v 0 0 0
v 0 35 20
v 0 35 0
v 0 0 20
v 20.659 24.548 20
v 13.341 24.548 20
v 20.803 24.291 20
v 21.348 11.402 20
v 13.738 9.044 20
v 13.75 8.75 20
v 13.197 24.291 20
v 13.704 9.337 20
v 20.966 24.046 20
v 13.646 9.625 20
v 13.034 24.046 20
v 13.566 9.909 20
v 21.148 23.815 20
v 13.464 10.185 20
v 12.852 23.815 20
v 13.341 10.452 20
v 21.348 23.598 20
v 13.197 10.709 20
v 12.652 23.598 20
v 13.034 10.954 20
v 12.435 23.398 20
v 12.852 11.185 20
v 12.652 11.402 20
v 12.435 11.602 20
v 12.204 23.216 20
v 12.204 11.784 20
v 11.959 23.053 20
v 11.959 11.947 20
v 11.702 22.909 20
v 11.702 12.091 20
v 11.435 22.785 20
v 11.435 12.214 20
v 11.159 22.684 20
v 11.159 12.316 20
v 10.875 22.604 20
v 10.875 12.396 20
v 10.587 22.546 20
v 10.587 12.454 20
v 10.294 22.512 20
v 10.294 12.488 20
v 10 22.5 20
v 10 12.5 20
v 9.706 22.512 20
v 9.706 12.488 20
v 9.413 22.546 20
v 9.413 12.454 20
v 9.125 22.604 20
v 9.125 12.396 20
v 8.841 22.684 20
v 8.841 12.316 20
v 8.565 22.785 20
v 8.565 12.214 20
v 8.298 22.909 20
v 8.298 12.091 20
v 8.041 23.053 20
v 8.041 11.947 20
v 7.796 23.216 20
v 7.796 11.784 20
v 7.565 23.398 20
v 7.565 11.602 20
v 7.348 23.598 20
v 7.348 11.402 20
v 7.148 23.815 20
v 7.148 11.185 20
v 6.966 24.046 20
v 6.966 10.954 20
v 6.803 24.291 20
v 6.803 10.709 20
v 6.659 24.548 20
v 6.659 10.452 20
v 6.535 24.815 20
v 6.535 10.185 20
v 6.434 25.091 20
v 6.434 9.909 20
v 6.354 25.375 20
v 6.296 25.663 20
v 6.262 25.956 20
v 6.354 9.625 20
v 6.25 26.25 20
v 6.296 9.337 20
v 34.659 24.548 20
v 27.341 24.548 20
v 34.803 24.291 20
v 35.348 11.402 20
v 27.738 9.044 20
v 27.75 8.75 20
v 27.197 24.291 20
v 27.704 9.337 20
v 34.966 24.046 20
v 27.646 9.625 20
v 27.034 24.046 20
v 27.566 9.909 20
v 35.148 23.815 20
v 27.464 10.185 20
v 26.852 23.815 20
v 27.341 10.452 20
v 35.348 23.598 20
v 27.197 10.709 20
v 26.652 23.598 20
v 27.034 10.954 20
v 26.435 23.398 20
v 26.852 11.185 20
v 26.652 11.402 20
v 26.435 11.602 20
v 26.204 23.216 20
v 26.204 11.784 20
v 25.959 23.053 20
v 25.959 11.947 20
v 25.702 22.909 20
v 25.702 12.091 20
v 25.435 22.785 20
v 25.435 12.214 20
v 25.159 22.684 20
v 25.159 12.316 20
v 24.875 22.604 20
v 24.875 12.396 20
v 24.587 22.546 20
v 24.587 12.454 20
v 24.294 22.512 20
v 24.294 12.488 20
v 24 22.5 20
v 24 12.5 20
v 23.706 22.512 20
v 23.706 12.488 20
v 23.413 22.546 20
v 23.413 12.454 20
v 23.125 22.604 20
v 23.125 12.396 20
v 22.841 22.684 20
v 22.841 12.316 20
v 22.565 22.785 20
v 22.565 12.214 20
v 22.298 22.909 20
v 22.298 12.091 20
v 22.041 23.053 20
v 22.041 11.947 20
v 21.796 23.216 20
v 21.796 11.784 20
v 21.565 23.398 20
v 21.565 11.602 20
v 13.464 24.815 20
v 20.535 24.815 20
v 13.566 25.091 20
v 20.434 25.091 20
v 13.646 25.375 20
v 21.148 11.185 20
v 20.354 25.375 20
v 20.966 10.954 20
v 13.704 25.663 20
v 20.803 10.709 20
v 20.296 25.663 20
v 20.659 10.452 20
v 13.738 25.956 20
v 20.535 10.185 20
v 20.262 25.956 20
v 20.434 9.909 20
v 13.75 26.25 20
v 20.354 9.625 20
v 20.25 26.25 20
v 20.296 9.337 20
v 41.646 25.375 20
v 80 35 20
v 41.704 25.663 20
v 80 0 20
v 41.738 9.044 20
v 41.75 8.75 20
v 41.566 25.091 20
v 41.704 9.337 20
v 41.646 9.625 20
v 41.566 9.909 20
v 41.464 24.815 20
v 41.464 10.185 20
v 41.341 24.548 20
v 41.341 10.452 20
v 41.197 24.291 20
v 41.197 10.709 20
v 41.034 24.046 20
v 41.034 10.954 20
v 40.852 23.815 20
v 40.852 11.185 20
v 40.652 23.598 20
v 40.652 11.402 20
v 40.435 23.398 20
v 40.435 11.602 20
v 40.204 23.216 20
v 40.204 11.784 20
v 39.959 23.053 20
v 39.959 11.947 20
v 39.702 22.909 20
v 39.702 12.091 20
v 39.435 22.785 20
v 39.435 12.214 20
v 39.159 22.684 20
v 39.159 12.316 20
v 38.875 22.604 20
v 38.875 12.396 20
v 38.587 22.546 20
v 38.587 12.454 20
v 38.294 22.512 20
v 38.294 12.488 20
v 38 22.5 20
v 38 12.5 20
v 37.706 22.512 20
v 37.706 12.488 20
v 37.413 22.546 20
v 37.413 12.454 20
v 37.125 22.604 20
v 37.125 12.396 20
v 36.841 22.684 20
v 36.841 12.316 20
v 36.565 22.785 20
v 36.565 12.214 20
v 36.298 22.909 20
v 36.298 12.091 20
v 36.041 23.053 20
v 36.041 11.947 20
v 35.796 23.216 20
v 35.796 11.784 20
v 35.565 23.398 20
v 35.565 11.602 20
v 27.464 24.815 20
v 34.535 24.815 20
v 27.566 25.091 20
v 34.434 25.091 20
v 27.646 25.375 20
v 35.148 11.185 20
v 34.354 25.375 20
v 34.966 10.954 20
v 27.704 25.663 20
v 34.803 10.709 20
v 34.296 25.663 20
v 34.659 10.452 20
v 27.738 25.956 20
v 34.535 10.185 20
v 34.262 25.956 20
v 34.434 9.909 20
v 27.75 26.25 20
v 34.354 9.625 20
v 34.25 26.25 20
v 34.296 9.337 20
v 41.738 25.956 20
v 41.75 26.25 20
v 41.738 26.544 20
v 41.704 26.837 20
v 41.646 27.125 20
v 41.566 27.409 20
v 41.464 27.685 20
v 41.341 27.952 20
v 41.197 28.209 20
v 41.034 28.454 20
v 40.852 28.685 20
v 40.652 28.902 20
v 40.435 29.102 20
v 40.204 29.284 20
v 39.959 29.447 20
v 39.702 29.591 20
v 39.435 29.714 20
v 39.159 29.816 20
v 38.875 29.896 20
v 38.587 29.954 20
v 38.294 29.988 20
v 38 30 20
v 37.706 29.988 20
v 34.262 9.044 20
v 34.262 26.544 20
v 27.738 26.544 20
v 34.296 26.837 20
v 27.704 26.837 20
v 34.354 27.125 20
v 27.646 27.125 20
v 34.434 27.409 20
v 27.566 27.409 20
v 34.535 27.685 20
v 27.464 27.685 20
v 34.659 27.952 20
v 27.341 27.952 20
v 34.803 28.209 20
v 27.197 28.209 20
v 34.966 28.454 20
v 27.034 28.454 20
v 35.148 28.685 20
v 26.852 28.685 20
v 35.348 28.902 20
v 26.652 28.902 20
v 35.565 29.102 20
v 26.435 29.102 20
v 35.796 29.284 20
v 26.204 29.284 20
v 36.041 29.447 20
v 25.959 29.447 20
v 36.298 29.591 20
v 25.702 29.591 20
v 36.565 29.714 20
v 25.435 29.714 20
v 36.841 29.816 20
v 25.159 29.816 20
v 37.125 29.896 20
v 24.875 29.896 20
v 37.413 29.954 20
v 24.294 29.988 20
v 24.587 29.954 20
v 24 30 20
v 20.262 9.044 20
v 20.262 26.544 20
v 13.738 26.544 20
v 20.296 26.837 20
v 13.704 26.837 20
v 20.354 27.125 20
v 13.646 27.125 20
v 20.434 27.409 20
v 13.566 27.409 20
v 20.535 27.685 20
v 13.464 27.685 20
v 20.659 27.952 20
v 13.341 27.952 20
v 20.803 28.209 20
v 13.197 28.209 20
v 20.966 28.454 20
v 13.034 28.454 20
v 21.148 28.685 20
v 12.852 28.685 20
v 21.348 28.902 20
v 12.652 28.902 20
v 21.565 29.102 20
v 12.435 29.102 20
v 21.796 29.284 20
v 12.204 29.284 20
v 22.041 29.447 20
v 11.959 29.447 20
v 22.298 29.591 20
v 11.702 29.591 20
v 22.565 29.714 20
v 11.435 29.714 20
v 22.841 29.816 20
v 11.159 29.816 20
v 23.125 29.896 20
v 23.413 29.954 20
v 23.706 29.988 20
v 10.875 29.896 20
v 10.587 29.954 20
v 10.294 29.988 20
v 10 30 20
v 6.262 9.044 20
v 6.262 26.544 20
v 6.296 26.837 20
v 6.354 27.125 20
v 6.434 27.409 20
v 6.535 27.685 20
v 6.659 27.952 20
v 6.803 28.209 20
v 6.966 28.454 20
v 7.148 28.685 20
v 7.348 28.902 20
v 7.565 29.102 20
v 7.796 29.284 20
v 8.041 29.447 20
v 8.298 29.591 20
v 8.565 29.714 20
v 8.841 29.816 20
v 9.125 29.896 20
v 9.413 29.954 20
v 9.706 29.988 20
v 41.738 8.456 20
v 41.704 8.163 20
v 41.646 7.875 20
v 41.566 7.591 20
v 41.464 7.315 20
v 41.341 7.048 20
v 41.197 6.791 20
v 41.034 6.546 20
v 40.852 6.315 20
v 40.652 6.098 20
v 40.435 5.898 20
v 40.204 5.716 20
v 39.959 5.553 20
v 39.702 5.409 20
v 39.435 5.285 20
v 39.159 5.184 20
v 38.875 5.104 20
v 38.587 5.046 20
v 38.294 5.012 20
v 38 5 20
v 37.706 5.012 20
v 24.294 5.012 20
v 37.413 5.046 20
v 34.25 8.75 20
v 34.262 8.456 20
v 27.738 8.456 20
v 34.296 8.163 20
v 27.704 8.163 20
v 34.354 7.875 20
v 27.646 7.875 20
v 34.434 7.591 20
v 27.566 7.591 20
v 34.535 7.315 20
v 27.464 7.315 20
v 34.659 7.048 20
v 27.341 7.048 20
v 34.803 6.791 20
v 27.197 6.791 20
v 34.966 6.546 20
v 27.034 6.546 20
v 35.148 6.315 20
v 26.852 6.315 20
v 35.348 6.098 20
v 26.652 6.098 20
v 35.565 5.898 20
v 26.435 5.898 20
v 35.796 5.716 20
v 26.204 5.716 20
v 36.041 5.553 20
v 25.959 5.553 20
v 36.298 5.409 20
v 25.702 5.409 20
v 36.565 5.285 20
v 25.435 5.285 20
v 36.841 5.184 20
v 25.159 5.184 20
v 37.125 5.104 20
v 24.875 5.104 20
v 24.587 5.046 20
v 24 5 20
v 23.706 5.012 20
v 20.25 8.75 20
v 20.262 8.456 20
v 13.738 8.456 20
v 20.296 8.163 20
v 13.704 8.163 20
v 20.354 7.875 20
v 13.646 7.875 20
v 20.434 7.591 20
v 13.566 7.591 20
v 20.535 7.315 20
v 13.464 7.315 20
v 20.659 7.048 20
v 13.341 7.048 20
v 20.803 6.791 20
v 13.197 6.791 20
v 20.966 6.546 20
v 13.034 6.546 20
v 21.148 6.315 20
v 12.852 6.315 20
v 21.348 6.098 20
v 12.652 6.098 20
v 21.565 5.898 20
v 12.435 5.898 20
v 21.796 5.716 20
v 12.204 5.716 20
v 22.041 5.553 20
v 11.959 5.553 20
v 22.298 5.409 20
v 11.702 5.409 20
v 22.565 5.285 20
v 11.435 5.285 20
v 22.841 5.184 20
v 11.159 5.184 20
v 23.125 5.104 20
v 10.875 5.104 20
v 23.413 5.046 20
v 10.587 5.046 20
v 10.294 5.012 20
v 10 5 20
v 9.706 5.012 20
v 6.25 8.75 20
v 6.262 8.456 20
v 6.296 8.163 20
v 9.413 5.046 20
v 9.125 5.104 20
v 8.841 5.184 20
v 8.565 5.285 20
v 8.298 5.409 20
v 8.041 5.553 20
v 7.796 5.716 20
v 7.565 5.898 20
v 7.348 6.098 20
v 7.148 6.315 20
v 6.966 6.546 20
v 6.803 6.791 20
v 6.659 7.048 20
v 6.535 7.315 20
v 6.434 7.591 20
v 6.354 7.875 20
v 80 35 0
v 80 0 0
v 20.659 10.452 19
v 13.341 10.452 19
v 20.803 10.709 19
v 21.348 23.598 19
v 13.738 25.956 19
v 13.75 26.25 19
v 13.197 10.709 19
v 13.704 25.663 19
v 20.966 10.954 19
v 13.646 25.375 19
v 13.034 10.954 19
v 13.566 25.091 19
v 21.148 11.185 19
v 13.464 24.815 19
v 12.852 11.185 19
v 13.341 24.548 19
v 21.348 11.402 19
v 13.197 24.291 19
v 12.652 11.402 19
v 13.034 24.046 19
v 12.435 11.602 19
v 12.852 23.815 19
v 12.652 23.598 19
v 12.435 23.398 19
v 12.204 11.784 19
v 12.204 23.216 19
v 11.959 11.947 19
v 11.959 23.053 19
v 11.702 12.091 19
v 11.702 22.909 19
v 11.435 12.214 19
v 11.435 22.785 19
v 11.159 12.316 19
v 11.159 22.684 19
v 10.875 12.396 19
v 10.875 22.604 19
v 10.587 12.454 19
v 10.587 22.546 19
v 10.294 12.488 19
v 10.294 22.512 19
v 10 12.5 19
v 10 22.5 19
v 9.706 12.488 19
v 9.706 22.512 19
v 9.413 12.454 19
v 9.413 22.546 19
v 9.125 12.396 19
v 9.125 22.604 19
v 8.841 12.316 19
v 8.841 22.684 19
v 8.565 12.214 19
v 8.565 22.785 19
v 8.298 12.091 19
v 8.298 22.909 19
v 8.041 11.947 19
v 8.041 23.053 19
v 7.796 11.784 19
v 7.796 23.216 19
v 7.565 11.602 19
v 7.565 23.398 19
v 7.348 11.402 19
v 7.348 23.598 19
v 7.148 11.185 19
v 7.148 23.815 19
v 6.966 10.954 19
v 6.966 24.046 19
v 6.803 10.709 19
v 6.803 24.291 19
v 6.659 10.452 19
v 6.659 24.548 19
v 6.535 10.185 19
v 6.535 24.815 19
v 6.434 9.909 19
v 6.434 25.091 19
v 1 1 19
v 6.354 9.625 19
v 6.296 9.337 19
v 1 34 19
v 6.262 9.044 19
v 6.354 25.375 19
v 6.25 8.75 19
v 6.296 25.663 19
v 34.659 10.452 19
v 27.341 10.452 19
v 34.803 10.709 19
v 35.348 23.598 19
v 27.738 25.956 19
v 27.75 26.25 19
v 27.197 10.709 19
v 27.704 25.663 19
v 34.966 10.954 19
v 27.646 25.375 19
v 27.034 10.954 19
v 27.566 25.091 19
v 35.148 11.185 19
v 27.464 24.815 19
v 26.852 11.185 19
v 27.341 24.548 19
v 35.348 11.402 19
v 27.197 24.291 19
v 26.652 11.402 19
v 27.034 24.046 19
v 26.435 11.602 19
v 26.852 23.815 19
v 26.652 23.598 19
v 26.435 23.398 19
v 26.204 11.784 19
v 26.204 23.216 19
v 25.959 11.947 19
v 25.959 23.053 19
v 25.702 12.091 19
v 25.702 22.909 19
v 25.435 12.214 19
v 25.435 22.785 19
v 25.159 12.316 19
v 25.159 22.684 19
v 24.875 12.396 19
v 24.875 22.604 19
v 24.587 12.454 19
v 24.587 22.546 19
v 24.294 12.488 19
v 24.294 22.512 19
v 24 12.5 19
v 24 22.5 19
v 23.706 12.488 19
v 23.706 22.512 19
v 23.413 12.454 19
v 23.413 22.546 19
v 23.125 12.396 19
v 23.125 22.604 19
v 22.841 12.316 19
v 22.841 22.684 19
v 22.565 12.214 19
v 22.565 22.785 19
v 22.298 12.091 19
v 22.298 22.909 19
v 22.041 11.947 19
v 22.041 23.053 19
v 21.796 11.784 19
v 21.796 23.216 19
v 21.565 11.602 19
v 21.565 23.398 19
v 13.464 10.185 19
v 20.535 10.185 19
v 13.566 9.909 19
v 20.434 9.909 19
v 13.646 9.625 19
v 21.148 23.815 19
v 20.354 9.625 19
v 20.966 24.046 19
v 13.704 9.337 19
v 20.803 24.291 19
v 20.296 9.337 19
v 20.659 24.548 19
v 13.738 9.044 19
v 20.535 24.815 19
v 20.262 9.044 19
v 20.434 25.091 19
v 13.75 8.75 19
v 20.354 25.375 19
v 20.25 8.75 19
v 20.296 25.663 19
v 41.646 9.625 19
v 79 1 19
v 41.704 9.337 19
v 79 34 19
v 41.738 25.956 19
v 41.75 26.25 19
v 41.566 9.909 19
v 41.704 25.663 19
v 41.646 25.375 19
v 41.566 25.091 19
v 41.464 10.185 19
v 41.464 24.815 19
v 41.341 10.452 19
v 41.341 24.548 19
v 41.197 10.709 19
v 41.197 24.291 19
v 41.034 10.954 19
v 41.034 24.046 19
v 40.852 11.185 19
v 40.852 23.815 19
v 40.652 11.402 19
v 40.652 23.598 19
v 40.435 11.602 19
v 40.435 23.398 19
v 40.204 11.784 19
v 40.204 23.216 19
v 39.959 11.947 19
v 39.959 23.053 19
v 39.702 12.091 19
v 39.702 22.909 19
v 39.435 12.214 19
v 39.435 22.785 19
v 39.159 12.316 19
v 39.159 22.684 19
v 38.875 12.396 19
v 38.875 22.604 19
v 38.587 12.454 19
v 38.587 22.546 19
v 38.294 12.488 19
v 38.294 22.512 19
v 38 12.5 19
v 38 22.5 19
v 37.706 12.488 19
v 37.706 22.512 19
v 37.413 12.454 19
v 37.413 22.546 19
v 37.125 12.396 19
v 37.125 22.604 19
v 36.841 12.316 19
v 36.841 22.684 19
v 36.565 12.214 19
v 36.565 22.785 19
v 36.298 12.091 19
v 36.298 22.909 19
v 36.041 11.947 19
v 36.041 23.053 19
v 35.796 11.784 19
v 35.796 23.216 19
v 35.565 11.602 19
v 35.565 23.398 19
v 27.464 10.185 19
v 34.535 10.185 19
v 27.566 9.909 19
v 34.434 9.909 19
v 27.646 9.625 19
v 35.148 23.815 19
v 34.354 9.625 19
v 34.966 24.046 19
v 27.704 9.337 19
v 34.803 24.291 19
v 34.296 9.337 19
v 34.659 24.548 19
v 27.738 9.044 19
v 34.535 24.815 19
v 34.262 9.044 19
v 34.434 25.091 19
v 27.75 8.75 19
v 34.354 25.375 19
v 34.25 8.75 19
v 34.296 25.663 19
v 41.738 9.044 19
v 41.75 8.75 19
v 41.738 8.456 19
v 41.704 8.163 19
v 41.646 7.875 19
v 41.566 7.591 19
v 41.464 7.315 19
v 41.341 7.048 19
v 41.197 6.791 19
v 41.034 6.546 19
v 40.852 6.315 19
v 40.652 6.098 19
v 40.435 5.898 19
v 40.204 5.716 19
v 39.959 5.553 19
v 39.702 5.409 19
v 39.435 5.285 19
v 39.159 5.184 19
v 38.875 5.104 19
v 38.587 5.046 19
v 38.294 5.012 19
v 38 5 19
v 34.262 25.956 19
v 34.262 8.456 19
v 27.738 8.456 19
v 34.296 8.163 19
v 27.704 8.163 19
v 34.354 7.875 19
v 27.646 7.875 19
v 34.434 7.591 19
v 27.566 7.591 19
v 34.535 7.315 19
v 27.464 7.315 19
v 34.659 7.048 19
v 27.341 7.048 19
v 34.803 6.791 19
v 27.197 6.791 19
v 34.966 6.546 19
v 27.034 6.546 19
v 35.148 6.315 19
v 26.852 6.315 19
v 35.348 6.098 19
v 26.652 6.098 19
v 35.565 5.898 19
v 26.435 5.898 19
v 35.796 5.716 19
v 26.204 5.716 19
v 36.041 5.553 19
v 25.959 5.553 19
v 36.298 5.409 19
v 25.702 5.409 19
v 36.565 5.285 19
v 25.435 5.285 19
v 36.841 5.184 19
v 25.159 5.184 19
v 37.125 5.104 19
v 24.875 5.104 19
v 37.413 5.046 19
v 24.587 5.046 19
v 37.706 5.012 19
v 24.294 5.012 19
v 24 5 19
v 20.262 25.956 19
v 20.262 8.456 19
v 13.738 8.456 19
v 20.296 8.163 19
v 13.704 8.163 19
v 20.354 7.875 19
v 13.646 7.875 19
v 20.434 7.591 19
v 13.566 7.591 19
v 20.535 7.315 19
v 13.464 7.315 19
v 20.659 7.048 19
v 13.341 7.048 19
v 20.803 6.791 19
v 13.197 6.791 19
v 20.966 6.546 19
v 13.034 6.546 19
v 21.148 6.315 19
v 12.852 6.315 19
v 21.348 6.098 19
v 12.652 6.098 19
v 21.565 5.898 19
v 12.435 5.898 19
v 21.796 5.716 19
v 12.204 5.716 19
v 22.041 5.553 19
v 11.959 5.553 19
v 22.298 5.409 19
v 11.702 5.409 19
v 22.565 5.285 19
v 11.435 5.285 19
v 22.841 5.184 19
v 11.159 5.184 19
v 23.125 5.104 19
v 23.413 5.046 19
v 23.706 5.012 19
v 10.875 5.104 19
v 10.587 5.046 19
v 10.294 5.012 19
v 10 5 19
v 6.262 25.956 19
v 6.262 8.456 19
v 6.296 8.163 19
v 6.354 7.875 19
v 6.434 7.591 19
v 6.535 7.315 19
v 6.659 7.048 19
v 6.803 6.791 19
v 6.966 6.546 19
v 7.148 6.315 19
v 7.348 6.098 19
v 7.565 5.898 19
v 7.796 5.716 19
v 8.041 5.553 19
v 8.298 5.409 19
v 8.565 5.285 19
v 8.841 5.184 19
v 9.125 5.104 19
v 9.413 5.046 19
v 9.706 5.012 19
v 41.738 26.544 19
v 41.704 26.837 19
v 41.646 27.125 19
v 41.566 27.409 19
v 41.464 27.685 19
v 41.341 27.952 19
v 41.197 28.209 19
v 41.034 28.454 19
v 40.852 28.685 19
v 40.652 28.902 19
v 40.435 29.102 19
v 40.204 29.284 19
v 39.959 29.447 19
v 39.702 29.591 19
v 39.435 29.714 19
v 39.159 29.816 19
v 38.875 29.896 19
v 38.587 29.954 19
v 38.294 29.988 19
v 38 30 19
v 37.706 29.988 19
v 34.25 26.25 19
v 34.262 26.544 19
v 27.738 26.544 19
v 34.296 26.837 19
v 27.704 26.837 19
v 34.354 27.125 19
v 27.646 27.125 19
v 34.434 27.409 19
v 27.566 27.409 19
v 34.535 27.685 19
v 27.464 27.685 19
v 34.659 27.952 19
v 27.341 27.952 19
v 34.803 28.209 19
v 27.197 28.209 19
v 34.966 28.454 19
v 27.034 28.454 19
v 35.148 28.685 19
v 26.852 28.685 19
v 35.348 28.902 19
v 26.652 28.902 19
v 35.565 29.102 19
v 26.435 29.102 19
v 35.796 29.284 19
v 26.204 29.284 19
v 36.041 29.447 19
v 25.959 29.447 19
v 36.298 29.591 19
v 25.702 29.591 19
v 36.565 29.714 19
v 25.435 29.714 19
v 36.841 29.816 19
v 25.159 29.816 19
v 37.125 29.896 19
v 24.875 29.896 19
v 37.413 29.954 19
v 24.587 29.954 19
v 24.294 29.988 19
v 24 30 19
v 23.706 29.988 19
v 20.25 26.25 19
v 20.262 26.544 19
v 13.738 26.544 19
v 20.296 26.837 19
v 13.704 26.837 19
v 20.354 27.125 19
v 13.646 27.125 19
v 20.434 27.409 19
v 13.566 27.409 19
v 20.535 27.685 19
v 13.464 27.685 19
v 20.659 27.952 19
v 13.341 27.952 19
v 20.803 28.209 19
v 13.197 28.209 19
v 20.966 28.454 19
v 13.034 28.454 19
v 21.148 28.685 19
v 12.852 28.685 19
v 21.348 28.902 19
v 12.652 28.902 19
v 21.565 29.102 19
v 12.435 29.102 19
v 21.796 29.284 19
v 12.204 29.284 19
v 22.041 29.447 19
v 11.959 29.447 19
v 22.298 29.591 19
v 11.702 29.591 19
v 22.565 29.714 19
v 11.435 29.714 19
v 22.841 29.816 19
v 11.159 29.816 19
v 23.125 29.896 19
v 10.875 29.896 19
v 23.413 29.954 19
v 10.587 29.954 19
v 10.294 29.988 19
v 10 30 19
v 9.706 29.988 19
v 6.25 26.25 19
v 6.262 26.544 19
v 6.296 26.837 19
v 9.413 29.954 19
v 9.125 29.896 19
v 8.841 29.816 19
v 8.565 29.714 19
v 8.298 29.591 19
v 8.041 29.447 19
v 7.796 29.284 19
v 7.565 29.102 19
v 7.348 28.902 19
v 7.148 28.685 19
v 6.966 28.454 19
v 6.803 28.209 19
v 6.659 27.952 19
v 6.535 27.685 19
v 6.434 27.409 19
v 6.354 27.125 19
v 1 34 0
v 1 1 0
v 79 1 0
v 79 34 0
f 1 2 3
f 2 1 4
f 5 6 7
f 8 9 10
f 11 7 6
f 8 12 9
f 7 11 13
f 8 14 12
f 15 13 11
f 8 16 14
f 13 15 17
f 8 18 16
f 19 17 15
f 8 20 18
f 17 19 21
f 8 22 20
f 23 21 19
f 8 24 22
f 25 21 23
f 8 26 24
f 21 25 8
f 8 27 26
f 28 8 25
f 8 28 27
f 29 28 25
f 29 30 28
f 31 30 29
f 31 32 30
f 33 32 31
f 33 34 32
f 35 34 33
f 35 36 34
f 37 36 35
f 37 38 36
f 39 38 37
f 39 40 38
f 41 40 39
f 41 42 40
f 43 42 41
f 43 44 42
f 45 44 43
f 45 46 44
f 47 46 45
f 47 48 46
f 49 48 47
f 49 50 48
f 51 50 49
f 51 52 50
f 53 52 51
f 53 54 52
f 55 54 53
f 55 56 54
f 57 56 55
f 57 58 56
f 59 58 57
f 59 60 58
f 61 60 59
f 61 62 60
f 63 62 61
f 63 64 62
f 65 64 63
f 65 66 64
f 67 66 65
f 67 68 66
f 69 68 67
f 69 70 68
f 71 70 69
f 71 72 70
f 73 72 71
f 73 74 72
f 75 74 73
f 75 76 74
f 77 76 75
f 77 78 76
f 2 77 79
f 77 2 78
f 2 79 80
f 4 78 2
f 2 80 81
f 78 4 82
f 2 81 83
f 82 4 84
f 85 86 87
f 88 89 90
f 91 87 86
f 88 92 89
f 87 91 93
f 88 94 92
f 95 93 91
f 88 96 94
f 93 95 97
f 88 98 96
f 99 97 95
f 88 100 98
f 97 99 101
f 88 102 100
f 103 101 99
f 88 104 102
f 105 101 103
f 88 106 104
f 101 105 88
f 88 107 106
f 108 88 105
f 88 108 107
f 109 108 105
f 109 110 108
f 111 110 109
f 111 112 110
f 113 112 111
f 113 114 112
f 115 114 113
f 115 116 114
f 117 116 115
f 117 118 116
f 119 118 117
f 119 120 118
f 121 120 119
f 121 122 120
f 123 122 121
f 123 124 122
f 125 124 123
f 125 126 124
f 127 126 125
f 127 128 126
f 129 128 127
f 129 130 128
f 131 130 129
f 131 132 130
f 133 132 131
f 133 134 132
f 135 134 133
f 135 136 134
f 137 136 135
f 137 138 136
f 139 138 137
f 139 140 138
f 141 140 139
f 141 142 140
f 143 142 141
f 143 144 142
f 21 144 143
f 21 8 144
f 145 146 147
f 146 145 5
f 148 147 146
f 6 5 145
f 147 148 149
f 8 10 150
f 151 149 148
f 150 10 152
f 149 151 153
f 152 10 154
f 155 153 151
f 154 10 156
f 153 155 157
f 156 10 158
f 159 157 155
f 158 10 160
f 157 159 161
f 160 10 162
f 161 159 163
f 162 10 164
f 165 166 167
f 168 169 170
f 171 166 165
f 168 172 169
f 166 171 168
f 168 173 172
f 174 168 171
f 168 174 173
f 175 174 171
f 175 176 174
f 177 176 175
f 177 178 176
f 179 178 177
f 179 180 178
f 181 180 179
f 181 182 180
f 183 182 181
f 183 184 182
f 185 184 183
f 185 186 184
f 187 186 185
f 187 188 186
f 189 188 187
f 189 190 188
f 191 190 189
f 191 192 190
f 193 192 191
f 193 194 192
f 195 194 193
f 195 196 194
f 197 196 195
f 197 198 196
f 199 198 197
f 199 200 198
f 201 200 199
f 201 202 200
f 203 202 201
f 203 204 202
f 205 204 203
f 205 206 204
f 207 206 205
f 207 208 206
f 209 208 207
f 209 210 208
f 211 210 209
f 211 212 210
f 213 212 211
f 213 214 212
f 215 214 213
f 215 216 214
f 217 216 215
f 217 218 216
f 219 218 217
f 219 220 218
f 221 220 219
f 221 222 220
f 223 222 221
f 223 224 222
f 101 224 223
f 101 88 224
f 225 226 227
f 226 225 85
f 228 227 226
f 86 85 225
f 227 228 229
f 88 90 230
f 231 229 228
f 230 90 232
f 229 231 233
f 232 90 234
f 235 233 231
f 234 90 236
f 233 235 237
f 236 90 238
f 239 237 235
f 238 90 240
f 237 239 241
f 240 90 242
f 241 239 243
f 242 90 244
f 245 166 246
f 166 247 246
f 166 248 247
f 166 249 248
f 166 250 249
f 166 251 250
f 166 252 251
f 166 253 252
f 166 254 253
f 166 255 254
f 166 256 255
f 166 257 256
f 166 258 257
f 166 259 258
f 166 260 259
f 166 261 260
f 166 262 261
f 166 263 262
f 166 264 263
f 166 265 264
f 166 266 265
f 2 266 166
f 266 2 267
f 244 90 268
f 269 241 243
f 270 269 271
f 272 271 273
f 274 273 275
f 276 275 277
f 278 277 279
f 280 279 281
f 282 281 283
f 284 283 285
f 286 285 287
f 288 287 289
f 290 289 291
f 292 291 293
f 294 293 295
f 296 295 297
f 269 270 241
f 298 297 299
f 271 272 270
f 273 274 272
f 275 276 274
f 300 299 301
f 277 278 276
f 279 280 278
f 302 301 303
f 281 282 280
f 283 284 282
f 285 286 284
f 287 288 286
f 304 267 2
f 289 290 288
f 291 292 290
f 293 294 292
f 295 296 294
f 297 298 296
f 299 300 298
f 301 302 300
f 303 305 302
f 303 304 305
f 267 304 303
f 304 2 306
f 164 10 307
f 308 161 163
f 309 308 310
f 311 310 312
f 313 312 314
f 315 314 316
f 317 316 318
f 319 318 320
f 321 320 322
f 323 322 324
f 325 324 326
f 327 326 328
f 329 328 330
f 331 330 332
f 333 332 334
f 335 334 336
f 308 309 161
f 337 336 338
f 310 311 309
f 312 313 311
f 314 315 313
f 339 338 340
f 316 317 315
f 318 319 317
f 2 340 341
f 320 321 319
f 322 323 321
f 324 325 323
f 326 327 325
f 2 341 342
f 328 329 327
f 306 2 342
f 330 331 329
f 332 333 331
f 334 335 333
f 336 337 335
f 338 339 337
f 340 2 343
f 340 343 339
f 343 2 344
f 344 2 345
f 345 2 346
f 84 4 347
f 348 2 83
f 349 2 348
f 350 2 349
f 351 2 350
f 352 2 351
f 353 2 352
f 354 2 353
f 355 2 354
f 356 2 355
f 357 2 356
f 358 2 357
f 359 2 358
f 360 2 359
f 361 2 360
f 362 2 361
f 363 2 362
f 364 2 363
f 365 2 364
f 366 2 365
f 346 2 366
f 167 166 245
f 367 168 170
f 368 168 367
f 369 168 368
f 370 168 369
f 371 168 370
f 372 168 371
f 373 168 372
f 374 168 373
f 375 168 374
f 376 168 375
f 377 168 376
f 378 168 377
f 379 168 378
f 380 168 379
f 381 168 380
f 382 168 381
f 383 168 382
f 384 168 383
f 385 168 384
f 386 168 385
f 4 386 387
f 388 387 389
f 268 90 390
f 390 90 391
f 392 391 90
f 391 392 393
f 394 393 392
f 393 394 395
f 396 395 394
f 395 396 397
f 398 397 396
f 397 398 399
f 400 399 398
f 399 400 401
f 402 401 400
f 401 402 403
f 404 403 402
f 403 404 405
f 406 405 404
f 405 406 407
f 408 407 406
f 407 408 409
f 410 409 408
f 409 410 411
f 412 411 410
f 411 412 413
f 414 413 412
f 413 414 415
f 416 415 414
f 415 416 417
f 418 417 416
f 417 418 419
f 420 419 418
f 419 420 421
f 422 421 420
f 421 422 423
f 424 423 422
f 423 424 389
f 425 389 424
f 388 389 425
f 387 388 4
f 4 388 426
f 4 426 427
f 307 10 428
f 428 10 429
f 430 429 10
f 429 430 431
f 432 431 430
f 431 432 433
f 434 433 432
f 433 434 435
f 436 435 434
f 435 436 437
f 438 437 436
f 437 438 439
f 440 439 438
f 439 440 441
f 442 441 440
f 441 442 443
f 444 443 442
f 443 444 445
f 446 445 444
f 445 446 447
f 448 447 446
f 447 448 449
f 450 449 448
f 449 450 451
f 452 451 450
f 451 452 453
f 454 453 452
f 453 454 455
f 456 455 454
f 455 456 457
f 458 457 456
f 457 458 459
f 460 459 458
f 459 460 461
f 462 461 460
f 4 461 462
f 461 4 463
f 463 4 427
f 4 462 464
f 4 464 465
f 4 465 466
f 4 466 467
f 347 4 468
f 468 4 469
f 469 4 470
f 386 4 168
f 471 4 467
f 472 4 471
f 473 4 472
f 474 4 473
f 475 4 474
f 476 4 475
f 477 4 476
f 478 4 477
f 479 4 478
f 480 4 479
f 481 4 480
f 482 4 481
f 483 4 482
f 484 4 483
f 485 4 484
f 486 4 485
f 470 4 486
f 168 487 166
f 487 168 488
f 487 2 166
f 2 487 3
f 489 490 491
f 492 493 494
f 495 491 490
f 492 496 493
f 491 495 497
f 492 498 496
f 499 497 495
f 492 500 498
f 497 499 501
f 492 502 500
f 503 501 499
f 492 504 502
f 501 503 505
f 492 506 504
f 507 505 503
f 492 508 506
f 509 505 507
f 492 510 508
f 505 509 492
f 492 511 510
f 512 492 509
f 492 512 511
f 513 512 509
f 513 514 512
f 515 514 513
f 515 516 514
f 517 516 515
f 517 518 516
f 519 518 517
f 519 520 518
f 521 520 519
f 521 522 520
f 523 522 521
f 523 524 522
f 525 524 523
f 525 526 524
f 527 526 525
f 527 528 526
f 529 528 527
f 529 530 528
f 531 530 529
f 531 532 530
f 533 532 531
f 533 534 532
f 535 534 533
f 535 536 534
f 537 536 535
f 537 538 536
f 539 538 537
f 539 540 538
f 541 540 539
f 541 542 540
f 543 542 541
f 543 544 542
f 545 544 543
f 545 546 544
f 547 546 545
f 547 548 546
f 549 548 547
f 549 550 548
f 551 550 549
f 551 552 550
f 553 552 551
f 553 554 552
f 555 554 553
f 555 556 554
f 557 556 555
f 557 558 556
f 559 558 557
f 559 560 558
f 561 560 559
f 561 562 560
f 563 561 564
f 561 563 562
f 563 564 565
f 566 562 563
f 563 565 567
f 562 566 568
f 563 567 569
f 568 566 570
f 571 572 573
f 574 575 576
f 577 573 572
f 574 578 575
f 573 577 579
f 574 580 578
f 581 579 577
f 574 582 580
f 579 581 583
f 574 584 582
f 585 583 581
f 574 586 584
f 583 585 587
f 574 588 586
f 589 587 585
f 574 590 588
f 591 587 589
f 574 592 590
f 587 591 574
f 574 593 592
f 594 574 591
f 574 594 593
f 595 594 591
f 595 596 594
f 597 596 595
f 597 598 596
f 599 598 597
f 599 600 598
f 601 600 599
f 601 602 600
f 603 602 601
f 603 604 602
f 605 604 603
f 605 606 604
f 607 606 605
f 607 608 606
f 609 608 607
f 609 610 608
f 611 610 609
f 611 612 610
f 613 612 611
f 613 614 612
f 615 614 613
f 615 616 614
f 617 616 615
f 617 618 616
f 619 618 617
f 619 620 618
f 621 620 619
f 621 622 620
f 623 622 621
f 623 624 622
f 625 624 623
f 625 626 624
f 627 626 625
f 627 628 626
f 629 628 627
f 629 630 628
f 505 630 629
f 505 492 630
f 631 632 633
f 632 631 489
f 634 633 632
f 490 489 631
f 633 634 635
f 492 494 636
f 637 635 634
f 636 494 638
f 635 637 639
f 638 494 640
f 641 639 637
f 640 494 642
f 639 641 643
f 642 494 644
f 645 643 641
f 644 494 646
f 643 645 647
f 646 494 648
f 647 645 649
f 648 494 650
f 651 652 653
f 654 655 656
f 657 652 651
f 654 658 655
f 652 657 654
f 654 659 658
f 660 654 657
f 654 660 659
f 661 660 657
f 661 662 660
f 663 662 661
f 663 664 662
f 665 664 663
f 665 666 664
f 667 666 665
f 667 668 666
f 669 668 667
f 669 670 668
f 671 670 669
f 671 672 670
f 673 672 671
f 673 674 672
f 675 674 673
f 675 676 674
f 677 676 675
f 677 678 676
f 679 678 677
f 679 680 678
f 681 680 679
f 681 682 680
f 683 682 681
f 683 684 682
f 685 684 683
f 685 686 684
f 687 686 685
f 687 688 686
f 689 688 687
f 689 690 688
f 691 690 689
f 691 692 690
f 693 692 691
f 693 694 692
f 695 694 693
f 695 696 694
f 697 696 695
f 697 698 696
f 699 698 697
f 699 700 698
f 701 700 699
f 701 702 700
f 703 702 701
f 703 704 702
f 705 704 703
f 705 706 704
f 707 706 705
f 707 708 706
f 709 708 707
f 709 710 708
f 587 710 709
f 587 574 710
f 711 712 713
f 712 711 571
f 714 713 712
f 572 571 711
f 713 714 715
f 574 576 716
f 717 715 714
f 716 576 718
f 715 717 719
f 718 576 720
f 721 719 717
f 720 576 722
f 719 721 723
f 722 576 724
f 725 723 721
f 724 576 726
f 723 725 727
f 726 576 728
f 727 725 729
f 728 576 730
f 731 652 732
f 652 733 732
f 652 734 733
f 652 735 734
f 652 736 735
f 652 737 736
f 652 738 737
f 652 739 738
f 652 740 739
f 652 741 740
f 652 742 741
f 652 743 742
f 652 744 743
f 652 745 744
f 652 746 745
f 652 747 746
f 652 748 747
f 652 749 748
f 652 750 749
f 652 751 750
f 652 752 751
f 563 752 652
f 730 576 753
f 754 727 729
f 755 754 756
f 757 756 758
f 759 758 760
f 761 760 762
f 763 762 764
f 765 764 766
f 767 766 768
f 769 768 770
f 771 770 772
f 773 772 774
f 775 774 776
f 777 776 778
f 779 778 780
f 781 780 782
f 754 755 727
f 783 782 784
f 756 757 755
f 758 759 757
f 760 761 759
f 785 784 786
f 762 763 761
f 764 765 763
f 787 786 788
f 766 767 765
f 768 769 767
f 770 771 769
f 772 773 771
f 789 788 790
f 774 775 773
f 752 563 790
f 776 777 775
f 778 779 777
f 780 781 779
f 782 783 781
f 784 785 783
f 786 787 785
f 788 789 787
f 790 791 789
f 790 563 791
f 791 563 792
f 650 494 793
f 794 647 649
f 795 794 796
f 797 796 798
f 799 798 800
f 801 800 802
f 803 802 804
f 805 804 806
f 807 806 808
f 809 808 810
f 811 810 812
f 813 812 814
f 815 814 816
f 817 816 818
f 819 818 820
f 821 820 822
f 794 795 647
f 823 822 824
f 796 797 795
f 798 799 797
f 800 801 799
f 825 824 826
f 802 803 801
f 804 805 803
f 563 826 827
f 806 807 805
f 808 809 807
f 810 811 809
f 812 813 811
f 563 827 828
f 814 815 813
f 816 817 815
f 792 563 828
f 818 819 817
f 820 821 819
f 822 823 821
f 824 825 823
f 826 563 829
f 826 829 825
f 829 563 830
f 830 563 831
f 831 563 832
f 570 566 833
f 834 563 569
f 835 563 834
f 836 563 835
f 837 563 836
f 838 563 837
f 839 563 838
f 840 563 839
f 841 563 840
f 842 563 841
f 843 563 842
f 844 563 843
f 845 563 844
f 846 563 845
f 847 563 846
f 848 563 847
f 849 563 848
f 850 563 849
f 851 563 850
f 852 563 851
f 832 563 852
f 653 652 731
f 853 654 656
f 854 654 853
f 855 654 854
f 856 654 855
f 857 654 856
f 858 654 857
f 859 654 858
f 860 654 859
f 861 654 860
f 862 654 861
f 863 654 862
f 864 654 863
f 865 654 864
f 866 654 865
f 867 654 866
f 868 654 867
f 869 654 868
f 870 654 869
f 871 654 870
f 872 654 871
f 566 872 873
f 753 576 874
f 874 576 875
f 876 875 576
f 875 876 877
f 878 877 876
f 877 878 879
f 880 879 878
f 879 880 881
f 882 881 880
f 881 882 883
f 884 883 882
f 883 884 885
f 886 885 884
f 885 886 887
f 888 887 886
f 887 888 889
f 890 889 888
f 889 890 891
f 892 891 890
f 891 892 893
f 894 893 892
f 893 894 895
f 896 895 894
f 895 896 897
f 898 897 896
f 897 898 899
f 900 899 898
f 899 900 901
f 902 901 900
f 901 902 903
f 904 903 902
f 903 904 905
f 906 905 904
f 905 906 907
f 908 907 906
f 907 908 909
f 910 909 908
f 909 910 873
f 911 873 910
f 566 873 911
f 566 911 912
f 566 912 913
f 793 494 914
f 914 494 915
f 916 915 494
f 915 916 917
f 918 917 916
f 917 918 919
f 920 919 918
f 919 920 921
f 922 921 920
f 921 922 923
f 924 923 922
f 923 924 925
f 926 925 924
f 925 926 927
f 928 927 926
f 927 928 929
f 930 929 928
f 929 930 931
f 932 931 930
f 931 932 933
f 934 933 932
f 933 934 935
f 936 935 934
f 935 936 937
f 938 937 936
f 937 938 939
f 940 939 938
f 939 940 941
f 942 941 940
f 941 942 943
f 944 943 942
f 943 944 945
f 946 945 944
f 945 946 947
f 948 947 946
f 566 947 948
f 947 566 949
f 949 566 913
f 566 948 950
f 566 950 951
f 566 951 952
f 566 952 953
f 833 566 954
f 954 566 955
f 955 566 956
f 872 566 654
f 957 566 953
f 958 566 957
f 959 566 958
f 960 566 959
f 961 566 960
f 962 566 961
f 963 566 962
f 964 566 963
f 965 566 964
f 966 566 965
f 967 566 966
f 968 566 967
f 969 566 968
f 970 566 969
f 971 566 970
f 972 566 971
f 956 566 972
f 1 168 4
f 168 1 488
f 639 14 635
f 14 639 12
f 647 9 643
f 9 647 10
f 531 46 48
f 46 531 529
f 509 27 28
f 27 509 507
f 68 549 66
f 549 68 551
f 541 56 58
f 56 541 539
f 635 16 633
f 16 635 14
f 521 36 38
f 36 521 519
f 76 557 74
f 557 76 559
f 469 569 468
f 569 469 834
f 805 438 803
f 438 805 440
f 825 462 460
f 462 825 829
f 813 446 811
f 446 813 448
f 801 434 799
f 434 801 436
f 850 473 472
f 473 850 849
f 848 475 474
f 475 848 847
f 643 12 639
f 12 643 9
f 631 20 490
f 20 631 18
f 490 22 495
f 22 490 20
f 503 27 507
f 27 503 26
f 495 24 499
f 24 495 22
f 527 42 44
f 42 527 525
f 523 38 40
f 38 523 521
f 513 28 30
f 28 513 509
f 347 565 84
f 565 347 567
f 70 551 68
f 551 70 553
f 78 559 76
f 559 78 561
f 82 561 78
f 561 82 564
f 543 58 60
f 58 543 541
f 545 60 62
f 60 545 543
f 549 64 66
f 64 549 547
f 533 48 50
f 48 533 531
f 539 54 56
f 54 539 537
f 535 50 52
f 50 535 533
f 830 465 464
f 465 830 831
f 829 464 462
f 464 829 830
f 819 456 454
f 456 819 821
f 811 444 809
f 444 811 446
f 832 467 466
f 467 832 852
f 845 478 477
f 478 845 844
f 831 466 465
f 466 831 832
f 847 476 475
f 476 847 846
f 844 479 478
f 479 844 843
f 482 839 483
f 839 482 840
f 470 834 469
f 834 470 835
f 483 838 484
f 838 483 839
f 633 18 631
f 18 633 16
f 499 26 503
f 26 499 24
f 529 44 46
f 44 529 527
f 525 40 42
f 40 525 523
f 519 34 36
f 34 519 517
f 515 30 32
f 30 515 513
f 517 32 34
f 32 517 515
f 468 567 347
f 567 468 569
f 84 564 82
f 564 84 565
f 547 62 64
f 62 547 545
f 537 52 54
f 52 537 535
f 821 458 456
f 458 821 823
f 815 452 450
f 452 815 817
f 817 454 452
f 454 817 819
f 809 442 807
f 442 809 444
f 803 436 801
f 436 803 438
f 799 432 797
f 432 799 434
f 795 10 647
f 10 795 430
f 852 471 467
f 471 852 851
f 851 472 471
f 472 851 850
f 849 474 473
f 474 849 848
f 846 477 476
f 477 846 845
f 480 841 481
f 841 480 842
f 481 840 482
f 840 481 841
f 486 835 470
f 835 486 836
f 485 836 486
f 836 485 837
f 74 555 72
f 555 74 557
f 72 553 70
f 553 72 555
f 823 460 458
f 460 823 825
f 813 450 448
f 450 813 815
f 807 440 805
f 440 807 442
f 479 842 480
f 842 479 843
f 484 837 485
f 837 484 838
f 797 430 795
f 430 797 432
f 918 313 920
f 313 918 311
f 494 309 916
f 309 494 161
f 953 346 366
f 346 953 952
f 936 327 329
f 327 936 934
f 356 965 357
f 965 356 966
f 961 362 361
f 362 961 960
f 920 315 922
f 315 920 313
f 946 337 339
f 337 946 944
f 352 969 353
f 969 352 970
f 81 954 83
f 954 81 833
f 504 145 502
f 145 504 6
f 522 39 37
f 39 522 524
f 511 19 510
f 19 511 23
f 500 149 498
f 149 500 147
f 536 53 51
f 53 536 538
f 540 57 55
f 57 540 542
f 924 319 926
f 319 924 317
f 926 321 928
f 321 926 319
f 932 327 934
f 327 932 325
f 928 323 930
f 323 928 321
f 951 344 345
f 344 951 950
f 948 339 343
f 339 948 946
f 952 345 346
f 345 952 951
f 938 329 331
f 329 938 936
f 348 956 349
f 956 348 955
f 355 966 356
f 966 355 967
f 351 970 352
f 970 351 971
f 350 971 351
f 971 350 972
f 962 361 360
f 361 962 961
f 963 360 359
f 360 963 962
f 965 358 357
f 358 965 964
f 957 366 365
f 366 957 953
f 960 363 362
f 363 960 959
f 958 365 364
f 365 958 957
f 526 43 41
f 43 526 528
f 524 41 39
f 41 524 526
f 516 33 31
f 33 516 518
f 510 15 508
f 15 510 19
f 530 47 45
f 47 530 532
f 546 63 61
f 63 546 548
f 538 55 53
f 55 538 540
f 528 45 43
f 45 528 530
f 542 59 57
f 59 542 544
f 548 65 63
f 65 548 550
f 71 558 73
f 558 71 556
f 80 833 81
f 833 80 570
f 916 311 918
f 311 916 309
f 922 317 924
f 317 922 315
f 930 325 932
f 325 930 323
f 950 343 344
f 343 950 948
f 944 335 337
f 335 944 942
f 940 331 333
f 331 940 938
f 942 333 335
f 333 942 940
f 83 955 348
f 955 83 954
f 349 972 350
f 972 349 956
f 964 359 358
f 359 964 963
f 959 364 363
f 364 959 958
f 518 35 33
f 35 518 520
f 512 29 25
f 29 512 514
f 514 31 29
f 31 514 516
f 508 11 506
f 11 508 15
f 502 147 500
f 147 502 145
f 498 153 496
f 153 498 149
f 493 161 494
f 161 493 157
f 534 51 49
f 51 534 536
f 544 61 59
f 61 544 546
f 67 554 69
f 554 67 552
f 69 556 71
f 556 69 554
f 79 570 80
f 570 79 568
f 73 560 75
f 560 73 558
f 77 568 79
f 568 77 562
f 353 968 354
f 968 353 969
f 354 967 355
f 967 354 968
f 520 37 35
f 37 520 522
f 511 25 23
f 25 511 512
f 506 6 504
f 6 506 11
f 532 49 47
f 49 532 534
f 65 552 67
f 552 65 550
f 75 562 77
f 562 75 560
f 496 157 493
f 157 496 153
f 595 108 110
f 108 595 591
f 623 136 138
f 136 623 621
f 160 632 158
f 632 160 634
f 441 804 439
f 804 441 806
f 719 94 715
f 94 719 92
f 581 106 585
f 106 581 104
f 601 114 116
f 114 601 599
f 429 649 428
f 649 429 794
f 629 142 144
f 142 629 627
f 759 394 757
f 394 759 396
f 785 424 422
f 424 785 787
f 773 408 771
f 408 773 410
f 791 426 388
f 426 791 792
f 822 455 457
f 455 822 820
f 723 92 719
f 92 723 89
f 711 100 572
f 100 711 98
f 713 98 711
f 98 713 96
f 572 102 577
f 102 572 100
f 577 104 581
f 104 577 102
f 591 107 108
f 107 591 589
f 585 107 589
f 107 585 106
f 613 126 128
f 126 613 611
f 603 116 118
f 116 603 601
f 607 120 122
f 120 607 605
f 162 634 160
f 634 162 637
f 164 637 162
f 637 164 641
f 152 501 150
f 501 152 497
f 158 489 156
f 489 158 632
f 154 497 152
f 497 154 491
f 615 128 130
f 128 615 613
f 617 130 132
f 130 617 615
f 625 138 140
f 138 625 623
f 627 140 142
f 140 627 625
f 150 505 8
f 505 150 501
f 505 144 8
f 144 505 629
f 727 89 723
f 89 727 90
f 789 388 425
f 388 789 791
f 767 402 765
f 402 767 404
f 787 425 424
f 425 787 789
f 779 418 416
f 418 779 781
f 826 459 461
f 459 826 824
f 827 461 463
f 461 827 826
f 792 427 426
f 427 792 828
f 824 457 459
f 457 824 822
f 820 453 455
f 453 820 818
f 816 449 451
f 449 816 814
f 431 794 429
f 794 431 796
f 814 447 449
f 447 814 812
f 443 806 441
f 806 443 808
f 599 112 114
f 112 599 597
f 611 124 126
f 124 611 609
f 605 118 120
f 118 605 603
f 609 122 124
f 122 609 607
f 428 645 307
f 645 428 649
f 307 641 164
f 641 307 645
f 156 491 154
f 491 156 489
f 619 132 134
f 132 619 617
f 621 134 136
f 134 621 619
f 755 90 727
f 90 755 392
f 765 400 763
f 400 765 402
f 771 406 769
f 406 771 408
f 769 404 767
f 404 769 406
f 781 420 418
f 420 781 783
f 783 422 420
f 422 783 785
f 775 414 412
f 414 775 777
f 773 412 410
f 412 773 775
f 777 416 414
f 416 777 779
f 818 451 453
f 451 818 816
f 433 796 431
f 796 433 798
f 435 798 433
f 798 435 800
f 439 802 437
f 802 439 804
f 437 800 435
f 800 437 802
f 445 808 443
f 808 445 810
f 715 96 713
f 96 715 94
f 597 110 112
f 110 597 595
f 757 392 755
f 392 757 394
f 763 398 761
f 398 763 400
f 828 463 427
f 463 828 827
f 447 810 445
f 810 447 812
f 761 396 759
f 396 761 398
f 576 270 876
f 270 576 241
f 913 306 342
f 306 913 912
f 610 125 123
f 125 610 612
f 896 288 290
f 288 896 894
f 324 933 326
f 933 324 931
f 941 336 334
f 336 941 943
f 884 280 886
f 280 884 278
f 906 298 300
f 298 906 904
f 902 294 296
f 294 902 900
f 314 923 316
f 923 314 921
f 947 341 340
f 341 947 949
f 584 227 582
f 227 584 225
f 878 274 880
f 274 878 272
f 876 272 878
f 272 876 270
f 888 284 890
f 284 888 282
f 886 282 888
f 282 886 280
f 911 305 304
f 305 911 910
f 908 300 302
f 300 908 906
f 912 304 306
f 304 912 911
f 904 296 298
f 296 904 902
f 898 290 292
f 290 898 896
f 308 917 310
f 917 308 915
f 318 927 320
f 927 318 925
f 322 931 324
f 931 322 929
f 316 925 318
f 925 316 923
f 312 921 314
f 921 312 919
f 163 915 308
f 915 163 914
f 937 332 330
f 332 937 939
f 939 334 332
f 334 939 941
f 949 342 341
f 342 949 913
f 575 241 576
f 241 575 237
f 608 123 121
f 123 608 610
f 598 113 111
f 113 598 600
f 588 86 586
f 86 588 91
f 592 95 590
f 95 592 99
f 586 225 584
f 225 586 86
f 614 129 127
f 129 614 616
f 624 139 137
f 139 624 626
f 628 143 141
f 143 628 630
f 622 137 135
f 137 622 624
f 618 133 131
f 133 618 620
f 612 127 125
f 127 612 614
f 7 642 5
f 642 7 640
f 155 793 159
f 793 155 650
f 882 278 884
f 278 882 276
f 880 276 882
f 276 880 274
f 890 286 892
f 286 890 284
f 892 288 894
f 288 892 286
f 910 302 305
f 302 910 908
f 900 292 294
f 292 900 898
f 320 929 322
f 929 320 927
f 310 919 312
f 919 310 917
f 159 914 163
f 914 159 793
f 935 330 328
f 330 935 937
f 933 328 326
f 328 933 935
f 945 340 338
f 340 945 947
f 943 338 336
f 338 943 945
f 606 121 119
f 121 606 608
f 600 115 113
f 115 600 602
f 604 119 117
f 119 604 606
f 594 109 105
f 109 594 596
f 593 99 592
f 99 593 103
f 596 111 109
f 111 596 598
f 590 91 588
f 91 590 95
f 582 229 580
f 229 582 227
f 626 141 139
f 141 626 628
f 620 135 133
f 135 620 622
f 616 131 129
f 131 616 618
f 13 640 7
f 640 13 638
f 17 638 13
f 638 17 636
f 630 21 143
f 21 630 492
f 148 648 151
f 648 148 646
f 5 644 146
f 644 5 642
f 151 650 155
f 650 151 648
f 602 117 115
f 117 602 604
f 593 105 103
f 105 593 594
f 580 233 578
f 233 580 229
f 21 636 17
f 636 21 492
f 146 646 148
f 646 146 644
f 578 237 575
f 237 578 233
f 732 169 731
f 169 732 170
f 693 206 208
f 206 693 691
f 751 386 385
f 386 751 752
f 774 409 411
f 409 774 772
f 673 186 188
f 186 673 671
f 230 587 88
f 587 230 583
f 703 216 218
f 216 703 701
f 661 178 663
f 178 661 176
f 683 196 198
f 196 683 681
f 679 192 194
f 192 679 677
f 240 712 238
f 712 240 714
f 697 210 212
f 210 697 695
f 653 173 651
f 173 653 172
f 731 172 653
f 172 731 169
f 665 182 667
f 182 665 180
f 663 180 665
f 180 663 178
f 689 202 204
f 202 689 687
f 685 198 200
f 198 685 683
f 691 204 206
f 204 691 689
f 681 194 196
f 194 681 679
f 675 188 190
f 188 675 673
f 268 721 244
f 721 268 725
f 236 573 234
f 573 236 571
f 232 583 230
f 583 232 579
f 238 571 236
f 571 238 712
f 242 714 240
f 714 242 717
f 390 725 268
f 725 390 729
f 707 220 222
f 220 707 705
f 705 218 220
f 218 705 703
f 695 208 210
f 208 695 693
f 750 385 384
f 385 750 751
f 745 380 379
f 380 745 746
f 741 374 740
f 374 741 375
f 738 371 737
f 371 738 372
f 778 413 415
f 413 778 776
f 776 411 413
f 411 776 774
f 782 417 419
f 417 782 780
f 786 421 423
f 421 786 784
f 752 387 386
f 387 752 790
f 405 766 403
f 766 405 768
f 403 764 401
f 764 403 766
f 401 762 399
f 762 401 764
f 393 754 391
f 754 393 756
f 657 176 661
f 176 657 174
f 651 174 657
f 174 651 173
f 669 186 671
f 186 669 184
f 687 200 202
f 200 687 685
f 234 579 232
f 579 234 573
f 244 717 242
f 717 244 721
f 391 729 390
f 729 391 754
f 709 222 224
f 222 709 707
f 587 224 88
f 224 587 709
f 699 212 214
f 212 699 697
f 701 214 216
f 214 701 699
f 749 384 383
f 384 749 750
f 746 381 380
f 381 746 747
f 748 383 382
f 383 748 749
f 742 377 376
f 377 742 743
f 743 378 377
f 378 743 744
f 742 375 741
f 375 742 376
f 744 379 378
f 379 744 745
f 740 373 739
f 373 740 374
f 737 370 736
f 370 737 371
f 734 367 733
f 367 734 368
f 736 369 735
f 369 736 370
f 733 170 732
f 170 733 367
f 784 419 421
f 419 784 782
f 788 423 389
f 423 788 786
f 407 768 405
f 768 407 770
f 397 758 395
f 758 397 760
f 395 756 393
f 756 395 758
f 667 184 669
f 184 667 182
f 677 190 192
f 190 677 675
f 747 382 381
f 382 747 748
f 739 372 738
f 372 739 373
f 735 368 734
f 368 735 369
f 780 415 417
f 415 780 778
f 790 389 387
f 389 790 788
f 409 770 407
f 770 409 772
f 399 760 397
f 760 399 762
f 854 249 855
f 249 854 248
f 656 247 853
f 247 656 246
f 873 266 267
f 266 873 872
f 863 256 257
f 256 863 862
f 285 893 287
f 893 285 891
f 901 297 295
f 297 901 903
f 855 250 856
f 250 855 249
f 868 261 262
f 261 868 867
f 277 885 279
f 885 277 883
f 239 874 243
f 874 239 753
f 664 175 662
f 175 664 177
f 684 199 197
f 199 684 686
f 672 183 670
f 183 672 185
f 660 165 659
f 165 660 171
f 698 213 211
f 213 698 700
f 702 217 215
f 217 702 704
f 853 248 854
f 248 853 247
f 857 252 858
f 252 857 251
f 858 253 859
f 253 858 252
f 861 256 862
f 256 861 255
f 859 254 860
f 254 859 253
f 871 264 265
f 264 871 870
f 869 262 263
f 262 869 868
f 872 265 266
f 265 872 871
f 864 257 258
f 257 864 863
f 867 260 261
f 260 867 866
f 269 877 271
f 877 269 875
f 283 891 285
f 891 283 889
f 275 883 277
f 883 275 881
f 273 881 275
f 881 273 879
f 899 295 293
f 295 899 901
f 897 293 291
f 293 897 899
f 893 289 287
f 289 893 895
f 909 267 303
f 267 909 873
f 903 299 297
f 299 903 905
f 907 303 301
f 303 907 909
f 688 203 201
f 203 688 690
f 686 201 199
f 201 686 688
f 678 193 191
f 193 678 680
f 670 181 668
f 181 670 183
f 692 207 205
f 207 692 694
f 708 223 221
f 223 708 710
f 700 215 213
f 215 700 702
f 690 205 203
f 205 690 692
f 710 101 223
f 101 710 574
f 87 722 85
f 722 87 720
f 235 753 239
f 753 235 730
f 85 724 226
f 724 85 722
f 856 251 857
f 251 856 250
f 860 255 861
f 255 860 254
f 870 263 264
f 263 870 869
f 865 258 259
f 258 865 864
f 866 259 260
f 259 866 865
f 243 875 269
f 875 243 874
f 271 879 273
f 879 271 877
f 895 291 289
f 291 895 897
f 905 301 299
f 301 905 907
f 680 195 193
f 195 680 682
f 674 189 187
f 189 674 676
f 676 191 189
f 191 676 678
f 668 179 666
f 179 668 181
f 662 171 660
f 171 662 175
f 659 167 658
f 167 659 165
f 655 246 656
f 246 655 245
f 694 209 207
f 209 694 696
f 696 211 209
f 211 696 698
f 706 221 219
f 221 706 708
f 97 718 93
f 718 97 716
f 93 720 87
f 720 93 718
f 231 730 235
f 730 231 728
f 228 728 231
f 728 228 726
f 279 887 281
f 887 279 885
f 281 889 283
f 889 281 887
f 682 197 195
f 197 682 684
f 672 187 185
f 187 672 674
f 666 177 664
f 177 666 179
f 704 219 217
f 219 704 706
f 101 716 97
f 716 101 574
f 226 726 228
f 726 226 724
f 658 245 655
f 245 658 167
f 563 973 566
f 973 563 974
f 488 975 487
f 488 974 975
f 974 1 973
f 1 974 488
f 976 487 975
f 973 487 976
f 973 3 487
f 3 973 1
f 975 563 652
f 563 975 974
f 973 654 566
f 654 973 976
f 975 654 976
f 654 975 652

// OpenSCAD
$fn = 80;

module button() {
    cylinder(r=3.75, h=2, center=true);
}


module top() {
    difference() {
        cube([80, 35, 1]);
        
        // row 1
        translate([10, 8.75, 0]) {
            cylinder(r=3.75, h=2);
        }
        translate([10, 26.25, 0]) {
            cylinder(r=3.75, h=2);
        }
        
        // row 2
        translate([24, 8.75, 0]) {
            cylinder(r=3.75, h=2);
        }
        translate([24, 26.25, 0]) {
            cylinder(r=3.75, h=2);
        }
        
        // row 3
        translate([38, 8.75, 0]) {
            cylinder(r=3.75, h=2);
        }
        translate([38, 26.25, 0]) {
            cylinder(r=3.75, h=2);
        }
    }
}

union() {
    translate([0, 0, 19]) {
        top();
    }
    cube([1, 35, 19]);
    
    cube([80, 1, 19]); 
    
    translate([0, 34, 0]) {
        cube([80, 1, 19]); 
    }
    
    translate([79, 0, 0]) {
        cube([1, 35, 19]);
    }
}
